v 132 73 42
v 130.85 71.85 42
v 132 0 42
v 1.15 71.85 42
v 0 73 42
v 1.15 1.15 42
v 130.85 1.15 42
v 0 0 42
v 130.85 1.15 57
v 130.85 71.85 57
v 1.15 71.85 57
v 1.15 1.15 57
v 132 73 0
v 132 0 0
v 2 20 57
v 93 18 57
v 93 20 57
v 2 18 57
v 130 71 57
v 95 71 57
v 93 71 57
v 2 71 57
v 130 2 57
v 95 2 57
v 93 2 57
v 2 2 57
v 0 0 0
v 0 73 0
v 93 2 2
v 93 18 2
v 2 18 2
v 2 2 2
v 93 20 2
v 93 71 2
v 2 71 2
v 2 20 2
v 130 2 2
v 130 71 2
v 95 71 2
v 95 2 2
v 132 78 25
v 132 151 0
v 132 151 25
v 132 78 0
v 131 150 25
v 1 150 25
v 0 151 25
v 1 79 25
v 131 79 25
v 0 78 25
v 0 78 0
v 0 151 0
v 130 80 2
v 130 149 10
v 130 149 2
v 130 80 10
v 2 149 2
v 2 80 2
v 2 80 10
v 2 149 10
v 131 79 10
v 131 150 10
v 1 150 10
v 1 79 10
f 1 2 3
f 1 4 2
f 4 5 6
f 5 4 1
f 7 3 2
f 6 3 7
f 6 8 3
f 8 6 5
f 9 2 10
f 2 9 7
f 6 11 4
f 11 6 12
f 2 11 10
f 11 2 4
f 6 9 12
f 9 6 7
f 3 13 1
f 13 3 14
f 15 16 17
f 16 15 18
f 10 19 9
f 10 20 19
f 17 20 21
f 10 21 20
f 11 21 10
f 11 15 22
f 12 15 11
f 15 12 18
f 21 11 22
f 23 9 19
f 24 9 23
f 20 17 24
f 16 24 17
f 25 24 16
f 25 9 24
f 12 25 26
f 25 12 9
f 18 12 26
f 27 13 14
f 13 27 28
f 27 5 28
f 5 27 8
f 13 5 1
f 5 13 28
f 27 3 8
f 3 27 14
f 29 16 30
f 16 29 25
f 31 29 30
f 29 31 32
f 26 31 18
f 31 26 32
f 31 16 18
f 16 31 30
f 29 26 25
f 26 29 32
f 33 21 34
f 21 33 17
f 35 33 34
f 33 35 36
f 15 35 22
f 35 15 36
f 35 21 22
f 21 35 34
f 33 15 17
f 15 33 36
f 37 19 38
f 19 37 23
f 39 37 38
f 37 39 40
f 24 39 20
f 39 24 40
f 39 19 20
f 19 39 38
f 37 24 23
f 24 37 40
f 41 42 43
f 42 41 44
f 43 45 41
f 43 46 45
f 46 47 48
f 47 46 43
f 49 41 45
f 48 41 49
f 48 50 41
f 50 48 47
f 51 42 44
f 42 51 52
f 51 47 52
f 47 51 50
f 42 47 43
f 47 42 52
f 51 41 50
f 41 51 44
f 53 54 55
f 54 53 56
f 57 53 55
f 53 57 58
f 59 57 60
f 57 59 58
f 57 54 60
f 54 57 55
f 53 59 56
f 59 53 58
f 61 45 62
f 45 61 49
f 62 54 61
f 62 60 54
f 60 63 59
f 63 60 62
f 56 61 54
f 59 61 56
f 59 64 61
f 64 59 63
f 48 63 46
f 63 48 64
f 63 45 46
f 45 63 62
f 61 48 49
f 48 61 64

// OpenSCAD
// ---------------------------------------------------------------
// Box with friction-fit slide-on lid and one divider (square corners)
//
// Same construction as sliding_lid_box.scad, plus a divider wall
// across the depth axis splitting the interior into two compartments.
// All compartment sizes are inside dimensions.
// ---------------------------------------------------------------

/* [Inside dimensions] */
main_width = 91; // interior width of the divided section
side_width = 35; // interior width of the full-depth compartment next to it
depth_a  = 16;   // interior depth of first compartment
depth_b  = 51;   // interior depth of second compartment
inside_z = 63;   // interior height (floor to underside of lid top)

/* [Walls] */
wall    = 2;     // box wall thickness (also floor and divider thickness)
lid_top = 2;     // lid top plate thickness

/* [Lid fit] */
lip_height = 15;   // depth of the lid skirt / height of the inset lip
skirt     = 1;     // lid skirt wall thickness
clearance = 0.15;  // gap between skirt and lip per side; tune for friction
edge_drop = 8;     // mm of full box wall carried by the lid (above the skirt)

/* [View] */
// "print"     -> both parts flat on the bed, side by side
// "assembled" -> lid on the box
// "open"      -> lid hovering above the box
view = "print"; // [print, assembled, open]

// ---------------------------------------------------------------
// Derived dimensions
// ---------------------------------------------------------------
inside_x = main_width + wall + side_width; // total interior width incl. wall
inside_y = depth_a + wall + depth_b;   // total interior span incl. divider
outer_x = inside_x + 2 * wall;
outer_y = inside_y + 2 * wall;
box_inside_z = inside_z - edge_drop;   // interior height of the box part alone
box_h   = wall + box_inside_z;         // outer box height (floor + interior)

lip_wall = wall - skirt - clearance;   // remaining wall thickness at the lip
lip_x = inside_x + 2 * lip_wall;       // lip outer footprint
lip_y = inside_y + 2 * lip_wall;

assert(lip_wall >= 0.8, "wall too thin: increase wall or reduce skirt/clearance");
assert(box_inside_z > lip_height, "inside_z - edge_drop must exceed lip_height");

// ---------------------------------------------------------------
// Parts
// ---------------------------------------------------------------
module box() {
    difference() {
        // full outer shell
        cube([outer_x, outer_y, box_h]);
        // compartment A
        translate([wall, wall, wall])
            cube([main_width, depth_a, box_inside_z + 1]);
        // compartment B (divider wall left standing in between)
        translate([wall, wall + depth_a + wall, wall])
            cube([main_width, depth_b, box_inside_z + 1]);
        // side compartment: full depth, no divider
        translate([wall + main_width + wall, wall, wall])
            cube([side_width, inside_y, box_inside_z + 1]);
        // step the top of the wall inward to form the lip
        difference() {
            translate([-1, -1, box_h - lip_height])
                cube([outer_x + 2, outer_y + 2, lip_height + 1]);
            translate([(outer_x - lip_x) / 2, (outer_y - lip_y) / 2, box_h - lip_height - 1])
                cube([lip_x, lip_y, lip_height + 2]);
        }
    }
}

module lid() {
    // modeled upside down (top plate on the bed) - print orientation
    difference() {
        cube([outer_x, outer_y, lid_top + edge_drop + lip_height]);
        // interior: the top edge_drop of the box lives in the lid (full wall)
        translate([wall, wall, lid_top])
            cube([inside_x, inside_y, edge_drop + lip_height + 1]);
        // cavity that receives the lip (friction fit)
        translate([(outer_x - lip_x) / 2 - clearance,
                   (outer_y - lip_y) / 2 - clearance,
                   lid_top + edge_drop])
            cube([lip_x + 2 * clearance, lip_y + 2 * clearance, lip_height + 1]);
    }
}

// lid flipped right-side up and placed on the box
module lid_on_box(lift = 0) {
    translate([0, 0, box_h + edge_drop + lid_top + lift])
        rotate([180, 0, 0])
            translate([0, -outer_y, 0])
                lid();
}

// ---------------------------------------------------------------
// Layout
// ---------------------------------------------------------------
if (view == "print") {
    box();
    translate([0, outer_y + 5, 0]) lid();
} else if (view == "assembled") {
    box();
    lid_on_box();
} else { // open
    box();
    lid_on_box(30);
}
